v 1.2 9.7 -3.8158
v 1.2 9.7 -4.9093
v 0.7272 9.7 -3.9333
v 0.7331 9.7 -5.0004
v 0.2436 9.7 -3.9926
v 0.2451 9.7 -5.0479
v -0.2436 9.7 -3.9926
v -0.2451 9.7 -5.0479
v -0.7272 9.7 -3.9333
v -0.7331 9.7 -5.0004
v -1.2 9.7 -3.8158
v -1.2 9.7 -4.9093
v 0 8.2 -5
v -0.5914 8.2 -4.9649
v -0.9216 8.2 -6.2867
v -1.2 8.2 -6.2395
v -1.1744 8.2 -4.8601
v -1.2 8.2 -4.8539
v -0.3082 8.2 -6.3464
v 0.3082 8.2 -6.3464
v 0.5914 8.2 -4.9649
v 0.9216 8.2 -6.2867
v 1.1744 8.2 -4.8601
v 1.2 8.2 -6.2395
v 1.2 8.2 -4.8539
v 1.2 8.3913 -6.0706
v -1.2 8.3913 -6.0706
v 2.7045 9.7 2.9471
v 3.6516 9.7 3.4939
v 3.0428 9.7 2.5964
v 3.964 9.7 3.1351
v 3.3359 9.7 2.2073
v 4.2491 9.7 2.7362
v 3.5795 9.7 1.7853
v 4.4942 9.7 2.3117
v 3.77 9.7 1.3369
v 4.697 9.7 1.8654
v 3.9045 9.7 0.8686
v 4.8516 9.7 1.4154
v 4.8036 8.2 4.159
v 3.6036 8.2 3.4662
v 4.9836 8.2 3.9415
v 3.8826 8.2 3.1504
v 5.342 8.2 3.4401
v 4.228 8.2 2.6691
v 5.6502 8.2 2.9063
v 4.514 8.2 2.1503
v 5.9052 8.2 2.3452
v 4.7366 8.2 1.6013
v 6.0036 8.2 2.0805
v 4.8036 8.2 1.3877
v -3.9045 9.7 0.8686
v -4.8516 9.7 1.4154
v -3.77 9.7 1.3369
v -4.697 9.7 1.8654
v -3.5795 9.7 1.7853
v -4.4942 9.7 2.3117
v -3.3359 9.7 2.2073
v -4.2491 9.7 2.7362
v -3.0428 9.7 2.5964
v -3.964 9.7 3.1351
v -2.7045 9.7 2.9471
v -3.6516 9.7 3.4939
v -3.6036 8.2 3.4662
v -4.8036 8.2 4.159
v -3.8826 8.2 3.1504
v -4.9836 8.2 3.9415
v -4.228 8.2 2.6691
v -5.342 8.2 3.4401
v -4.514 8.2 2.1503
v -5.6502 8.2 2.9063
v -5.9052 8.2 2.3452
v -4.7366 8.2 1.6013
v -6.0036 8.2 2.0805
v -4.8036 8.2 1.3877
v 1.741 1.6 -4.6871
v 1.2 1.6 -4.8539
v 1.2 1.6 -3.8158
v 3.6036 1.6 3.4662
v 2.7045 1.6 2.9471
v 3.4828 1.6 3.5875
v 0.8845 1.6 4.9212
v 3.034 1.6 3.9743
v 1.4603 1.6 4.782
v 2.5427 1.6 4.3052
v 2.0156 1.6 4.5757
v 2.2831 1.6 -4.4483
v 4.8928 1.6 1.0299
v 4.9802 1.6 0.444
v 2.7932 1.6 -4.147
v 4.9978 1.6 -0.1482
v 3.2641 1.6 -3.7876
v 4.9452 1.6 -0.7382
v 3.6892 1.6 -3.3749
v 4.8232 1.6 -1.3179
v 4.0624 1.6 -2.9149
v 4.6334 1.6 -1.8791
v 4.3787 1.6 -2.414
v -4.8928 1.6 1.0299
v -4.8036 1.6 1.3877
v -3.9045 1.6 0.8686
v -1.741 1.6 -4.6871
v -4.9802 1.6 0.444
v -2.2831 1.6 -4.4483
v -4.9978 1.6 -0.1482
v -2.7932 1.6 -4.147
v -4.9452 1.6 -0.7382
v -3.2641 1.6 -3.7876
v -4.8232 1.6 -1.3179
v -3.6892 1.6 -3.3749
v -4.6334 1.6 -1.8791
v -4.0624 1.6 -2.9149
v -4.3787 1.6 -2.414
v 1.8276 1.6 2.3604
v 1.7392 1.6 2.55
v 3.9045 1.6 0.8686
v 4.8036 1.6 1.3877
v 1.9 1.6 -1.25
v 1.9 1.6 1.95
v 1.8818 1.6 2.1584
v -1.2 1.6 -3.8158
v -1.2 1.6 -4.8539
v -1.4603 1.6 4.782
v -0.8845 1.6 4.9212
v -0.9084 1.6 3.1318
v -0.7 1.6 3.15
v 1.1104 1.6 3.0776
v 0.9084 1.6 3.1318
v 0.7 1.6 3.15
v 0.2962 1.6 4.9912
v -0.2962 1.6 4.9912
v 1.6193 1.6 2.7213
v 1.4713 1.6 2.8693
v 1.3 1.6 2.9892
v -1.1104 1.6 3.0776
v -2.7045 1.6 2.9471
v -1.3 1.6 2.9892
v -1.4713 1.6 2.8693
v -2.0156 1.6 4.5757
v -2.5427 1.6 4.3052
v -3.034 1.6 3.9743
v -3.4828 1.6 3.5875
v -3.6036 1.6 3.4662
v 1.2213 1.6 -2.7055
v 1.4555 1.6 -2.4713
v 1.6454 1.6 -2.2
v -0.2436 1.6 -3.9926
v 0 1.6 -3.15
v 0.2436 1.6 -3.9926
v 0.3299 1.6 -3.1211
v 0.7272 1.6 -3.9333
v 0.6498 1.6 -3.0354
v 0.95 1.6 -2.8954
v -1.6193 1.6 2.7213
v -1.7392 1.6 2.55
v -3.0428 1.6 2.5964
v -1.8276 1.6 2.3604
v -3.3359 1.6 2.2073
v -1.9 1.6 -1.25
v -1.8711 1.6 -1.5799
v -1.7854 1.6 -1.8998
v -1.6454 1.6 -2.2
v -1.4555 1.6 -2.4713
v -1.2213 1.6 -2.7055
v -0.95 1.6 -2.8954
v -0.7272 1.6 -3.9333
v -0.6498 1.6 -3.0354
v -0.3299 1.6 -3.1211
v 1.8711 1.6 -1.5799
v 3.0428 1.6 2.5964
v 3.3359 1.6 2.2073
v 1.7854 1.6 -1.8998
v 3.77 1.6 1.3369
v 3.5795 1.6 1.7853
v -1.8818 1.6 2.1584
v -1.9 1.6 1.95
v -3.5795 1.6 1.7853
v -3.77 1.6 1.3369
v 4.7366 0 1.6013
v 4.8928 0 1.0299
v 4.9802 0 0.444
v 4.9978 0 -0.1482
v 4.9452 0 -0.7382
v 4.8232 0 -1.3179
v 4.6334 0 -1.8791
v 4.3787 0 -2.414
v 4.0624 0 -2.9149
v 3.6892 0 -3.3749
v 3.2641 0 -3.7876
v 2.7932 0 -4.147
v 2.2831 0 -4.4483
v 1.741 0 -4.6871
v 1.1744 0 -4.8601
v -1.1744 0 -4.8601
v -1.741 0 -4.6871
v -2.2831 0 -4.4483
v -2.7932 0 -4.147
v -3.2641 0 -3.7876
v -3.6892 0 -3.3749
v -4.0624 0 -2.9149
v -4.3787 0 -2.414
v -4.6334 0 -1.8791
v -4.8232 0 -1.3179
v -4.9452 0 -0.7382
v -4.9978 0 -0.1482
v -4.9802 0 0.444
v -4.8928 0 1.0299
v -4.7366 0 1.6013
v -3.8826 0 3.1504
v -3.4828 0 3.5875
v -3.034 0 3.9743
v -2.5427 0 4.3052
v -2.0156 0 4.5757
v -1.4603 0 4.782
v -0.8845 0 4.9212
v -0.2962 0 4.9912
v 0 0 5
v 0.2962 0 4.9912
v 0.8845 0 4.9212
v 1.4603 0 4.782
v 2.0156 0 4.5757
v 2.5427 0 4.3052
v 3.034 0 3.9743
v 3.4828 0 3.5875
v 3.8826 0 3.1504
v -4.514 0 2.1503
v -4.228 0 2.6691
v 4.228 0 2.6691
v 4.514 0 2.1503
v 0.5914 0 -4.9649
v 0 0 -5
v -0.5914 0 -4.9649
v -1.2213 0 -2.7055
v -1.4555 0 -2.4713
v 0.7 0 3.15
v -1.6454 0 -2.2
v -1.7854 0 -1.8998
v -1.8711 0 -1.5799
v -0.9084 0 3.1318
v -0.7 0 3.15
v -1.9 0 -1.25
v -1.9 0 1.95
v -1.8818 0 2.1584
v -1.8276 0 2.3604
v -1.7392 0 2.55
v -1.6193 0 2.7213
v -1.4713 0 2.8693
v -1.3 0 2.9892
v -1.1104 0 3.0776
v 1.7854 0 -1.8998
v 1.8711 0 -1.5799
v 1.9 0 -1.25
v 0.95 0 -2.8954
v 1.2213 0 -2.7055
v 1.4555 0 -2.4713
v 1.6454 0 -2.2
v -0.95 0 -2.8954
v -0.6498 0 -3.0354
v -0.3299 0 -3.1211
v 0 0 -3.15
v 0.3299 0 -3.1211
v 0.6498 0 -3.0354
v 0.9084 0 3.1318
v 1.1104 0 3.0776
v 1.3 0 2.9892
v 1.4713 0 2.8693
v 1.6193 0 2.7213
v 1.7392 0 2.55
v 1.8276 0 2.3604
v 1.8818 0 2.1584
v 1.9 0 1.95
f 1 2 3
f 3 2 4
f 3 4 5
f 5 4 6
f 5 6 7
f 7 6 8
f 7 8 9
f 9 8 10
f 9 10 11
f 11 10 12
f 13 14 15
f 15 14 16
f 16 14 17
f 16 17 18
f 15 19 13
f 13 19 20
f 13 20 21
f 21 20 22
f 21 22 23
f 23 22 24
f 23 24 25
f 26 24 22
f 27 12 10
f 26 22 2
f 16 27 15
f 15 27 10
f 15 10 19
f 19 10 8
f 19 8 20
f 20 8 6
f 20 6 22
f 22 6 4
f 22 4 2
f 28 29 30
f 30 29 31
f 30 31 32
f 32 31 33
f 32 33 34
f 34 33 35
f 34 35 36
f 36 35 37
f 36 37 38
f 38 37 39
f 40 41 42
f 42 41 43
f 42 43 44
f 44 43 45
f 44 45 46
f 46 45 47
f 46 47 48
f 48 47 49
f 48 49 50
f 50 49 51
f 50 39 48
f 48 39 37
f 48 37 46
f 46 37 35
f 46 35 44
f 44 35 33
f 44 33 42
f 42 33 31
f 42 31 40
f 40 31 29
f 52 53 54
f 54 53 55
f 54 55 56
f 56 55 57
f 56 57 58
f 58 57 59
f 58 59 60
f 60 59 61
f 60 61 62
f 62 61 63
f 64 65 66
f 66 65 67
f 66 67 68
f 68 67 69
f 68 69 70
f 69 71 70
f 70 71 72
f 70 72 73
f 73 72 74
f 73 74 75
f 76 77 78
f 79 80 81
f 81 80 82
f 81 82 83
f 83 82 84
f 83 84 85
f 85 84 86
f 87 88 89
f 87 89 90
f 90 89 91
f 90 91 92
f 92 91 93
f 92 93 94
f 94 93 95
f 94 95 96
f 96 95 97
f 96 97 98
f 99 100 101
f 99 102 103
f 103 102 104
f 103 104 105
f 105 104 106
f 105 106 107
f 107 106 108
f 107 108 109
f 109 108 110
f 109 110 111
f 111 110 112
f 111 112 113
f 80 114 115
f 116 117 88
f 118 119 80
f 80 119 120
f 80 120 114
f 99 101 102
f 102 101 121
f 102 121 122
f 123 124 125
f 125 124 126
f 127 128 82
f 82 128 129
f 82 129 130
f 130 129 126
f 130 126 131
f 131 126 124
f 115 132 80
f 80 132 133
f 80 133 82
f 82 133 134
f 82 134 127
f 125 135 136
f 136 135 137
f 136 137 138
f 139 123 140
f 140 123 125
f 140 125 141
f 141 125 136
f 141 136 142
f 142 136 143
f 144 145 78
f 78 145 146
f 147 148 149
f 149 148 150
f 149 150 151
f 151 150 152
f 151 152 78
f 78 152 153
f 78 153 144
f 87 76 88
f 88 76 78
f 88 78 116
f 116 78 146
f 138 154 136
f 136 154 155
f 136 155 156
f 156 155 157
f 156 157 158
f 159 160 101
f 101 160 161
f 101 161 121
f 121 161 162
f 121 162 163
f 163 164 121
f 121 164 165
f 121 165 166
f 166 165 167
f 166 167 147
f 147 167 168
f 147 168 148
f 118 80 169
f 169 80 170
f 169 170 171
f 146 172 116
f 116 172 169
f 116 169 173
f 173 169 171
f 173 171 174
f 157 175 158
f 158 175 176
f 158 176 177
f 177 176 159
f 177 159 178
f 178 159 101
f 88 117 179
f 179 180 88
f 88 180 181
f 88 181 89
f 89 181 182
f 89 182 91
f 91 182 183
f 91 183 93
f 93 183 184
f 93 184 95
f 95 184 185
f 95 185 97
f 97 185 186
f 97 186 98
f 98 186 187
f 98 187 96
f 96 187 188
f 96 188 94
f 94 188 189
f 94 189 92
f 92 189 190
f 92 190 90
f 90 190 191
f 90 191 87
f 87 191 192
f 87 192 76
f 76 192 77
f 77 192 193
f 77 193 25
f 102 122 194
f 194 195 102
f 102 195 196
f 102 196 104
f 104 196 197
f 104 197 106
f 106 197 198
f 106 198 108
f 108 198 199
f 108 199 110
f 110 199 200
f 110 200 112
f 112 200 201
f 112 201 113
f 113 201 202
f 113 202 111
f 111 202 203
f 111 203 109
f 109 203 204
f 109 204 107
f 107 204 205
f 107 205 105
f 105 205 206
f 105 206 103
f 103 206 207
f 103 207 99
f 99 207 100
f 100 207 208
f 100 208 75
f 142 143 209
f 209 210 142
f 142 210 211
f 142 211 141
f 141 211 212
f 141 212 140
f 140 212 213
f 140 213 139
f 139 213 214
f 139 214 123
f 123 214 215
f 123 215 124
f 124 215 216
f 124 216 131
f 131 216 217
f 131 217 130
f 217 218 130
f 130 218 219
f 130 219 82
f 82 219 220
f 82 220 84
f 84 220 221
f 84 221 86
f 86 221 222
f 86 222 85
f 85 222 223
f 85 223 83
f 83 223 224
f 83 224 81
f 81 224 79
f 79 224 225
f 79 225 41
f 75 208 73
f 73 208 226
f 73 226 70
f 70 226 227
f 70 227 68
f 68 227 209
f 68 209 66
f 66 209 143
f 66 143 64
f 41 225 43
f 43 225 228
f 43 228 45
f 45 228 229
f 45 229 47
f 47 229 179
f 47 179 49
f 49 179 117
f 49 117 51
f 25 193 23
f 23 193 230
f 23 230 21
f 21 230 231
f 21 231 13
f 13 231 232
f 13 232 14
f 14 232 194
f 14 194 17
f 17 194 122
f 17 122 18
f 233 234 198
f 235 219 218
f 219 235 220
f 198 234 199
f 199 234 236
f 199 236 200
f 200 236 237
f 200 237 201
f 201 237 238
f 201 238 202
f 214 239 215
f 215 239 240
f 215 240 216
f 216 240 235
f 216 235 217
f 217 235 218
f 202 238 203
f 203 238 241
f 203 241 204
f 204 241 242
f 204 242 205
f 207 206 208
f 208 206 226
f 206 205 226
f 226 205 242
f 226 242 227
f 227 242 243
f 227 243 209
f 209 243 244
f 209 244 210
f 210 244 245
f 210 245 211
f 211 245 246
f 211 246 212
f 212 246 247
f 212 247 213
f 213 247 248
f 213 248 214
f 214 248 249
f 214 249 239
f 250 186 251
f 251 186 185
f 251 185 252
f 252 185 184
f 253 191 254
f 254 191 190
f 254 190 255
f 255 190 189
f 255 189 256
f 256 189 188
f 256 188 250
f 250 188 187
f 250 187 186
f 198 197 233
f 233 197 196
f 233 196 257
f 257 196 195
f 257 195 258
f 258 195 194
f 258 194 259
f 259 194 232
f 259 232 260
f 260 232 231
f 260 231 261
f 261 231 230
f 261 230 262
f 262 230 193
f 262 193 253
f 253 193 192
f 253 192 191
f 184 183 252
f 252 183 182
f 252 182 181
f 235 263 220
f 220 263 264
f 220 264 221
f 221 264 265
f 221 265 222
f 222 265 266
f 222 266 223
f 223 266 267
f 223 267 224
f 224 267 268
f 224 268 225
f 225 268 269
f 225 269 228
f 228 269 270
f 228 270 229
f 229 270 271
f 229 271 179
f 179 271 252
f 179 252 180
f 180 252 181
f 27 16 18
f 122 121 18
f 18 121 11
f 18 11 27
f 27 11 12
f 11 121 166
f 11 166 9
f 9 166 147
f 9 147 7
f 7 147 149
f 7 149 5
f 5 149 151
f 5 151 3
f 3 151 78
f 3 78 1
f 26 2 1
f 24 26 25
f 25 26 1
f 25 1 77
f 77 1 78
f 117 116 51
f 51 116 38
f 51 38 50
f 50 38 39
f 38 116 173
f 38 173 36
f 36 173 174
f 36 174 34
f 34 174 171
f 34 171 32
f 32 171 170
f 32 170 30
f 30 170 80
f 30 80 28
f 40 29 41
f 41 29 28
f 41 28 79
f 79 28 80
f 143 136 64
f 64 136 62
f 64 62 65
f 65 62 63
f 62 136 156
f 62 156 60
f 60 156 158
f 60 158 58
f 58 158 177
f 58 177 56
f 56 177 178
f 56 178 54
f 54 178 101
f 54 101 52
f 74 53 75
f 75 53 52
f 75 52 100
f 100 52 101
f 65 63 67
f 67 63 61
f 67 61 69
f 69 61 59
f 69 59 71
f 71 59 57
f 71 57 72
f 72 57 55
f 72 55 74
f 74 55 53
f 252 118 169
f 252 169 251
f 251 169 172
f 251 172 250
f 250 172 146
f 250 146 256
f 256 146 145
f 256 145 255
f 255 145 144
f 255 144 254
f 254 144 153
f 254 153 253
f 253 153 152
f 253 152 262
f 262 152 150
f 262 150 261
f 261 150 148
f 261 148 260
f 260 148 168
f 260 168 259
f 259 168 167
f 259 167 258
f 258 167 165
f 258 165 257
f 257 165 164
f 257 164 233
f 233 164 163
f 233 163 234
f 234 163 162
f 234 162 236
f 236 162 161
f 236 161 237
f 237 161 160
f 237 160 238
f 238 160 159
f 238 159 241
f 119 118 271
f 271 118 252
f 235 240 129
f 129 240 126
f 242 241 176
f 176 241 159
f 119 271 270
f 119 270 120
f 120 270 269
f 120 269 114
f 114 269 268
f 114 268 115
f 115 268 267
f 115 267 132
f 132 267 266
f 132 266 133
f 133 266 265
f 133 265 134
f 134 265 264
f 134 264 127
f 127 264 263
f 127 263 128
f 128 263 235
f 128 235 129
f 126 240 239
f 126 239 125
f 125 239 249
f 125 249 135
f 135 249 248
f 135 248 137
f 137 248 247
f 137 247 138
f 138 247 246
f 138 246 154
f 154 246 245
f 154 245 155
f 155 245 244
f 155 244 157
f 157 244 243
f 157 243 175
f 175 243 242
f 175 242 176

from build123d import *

# Parameters (mm, degrees)
SKETCH1_R           = 5
BOSS_EXTRUDE1_DEPTH = 1.6
BOSS_EXTRUDE2_DEPTH = 8.1
CIRPATTERN3_COUNT   = 3
CUT_EXTRUDE2_DEPTH  = 13.097652285
CUT_EXTRUDE3_DEPTH  = 13.164834188
CUT_EXTRUDE4_DEPTH  = 12.917406966
FILLET1_R           = 1.2


with BuildPart() as part:
    # Sketch1 → Boss-Extrude1 (new body)
    with BuildSketch(Plane(origin=(0, 0, 0), x_dir=(1, 0, 0), z_dir=(0, 1, 0))):
        with Locations(Location((0, 0, 0), (0, 0, 270))):
            Circle(SKETCH1_R)
    extrude(amount=BOSS_EXTRUDE1_DEPTH)

    # Sketch2 → Boss-Extrude2 (add)
    with BuildSketch(Plane(origin=(0, 1.6, 0), x_dir=(1, 0, 0), z_dir=(0, 1, 0))):
        with BuildLine():
            Line((-1.2, 4.85386444), (-1.2, 3.815756806))
            ThreePointArc((-1.2, 3.815756806), (0, 4), (1.2, 3.815756806))
            Line((1.2, 3.815756806), (1.2, 4.85386444))
            ThreePointArc((1.2, 4.85386444), (0, 5), (-1.2, 4.85386444))
        make_face()
    boss_extrude2 = extrude(amount=BOSS_EXTRUDE2_DEPTH)

    # CirPattern3: Boss-Extrude2 ×3 about axis
    cirpattern3_axis = Axis((0, 0, 0), (0, 1, 0))
    for i in range(1, CIRPATTERN3_COUNT):
        add(boss_extrude2.rotate(cirpattern3_axis, i * 360 / CIRPATTERN3_COUNT))

    # Sweep3: sweep along a path in Sketch6
    with BuildLine(Plane(origin=(0, 9.7, 0), x_dir=(1, 0, 0), z_dir=(0, 1, 0))) as sweep3_path:
        CenterArc((0, 0), 5, 0, 360)
    # Sketch3 → Sweep3 (sweep)
    with BuildSketch(Plane(origin=(0, 0, 0), x_dir=(0, 0, -1), z_dir=(1, 0, 0))):
        Polygon((5.05386444, 9.7), (6.35386444, 8.2), (4.85386444, 8.2), (4.85386444, 9.7), align=None)
    sweep(path=sweep3_path.line)

    # Sketch7 → Cut-Extrude2 (cut, through all)
    with BuildSketch(Plane(origin=(0, 1.6, 0), x_dir=(1, 0, 0), z_dir=(0, 1, 0))):
        with BuildLine():
            Line((-3.904542328, -0.868647918), (-4.803569911, -1.387701735))
            ThreePointArc((-4.803569911, -1.387701735), (-4.330127019, 2.5), (-1.2, 4.85386444))
            Line((-1.2, 4.85386444), (-1.2, 3.815756806))
            ThreePointArc((-1.2, 3.815756806), (0, 4), (1.2, 3.815756806))
            Line((1.2, 3.815756806), (1.2, 4.85386444))
            ThreePointArc((1.2, 4.85386444), (4.330127019, 2.5), (4.803569911, -1.387701735))
            Line((4.803569911, -1.387701735), (3.904542328, -0.868647918))
            ThreePointArc((3.904542328, -0.868647918), (3.464101615, -2), (2.704542328, -2.947108887))
            Line((2.704542328, -2.947108887), (3.603569911, -3.466162704))
            ThreePointArc((3.603569911, -3.466162704), (0, -5), (-3.603569911, -3.466162704))
            Line((-3.603569911, -3.466162704), (-2.704542328, -2.947108887))
            ThreePointArc((-2.704542328, -2.947108887), (-3.464101615, -2), (-3.904542328, -0.868647918))
        make_face()
    extrude(amount=CUT_EXTRUDE2_DEPTH, mode=Mode.SUBTRACT)

    # Sketch8 → Cut-Extrude3 (cut, through all)
    with BuildSketch(Plane.XZ.offset(-8.2)):
        with BuildLine():
            Line((-3.603569911, 3.466162704), (-4.803581682, 4.158989823))
            ThreePointArc((-4.803581682, 4.158989823), (0, 6.35386444), (4.803581682, 4.158989823))
            Line((4.803581682, 4.158989823), (3.603569911, 3.466162704))
            ThreePointArc((3.603569911, 3.466162704), (0, 5), (-3.603569911, 3.466162704))
        make_face()
        with BuildLine():
            Line((-6.003581682, 2.080528854), (-4.803569911, 1.387701735))
            ThreePointArc((-4.803569911, 1.387701735), (-4.330127019, -2.5), (-1.2, -4.85386444))
            Line((-1.2, -4.85386444), (-1.2, -6.239518677))
            ThreePointArc((-1.2, -6.239518677), (-5.502608017, -3.17693222), (-6.003581682, 2.080528854))
        make_face()
        with BuildLine():
            Line((1.2, -6.239518677), (1.2, -4.85386444))
            ThreePointArc((1.2, -4.85386444), (4.330127019, -2.5), (4.803569911, 1.387701735))
            Line((4.803569911, 1.387701735), (6.003581682, 2.080528854))
            ThreePointArc((6.003581682, 2.080528854), (5.502608017, -3.17693222), (1.2, -6.239518677))
        make_face()
    extrude(amount=-CUT_EXTRUDE3_DEPTH, mode=Mode.SUBTRACT)

    # Sketch9 → Cut-Extrude4 (cut, through all)
    with BuildSketch(Plane(origin=(0, 1.6, 0), x_dir=(1, 0, 0), z_dir=(0, 1, 0))):
        with BuildLine():
            Line((1.9, -3.15), (1.9, 1.25))
            ThreePointArc((1.9, 1.25), (0, 3.15), (-1.9, 1.25))
            Line((-1.9, 1.25), (-1.9, -3.15))
            Line((-1.9, -3.15), (1.9, -3.15))
        make_face()
    extrude(amount=-CUT_EXTRUDE4_DEPTH, mode=Mode.SUBTRACT)

    # Fillet1
    fillet1_edges = [part.edges().sort_by_distance(p)[0] for p in [
        (1.9, 0.8, 3.15),
        (-1.9, 0.8, 3.15),
    ]]
    fillet(fillet1_edges, radius=FILLET1_R)


solid = part.part
